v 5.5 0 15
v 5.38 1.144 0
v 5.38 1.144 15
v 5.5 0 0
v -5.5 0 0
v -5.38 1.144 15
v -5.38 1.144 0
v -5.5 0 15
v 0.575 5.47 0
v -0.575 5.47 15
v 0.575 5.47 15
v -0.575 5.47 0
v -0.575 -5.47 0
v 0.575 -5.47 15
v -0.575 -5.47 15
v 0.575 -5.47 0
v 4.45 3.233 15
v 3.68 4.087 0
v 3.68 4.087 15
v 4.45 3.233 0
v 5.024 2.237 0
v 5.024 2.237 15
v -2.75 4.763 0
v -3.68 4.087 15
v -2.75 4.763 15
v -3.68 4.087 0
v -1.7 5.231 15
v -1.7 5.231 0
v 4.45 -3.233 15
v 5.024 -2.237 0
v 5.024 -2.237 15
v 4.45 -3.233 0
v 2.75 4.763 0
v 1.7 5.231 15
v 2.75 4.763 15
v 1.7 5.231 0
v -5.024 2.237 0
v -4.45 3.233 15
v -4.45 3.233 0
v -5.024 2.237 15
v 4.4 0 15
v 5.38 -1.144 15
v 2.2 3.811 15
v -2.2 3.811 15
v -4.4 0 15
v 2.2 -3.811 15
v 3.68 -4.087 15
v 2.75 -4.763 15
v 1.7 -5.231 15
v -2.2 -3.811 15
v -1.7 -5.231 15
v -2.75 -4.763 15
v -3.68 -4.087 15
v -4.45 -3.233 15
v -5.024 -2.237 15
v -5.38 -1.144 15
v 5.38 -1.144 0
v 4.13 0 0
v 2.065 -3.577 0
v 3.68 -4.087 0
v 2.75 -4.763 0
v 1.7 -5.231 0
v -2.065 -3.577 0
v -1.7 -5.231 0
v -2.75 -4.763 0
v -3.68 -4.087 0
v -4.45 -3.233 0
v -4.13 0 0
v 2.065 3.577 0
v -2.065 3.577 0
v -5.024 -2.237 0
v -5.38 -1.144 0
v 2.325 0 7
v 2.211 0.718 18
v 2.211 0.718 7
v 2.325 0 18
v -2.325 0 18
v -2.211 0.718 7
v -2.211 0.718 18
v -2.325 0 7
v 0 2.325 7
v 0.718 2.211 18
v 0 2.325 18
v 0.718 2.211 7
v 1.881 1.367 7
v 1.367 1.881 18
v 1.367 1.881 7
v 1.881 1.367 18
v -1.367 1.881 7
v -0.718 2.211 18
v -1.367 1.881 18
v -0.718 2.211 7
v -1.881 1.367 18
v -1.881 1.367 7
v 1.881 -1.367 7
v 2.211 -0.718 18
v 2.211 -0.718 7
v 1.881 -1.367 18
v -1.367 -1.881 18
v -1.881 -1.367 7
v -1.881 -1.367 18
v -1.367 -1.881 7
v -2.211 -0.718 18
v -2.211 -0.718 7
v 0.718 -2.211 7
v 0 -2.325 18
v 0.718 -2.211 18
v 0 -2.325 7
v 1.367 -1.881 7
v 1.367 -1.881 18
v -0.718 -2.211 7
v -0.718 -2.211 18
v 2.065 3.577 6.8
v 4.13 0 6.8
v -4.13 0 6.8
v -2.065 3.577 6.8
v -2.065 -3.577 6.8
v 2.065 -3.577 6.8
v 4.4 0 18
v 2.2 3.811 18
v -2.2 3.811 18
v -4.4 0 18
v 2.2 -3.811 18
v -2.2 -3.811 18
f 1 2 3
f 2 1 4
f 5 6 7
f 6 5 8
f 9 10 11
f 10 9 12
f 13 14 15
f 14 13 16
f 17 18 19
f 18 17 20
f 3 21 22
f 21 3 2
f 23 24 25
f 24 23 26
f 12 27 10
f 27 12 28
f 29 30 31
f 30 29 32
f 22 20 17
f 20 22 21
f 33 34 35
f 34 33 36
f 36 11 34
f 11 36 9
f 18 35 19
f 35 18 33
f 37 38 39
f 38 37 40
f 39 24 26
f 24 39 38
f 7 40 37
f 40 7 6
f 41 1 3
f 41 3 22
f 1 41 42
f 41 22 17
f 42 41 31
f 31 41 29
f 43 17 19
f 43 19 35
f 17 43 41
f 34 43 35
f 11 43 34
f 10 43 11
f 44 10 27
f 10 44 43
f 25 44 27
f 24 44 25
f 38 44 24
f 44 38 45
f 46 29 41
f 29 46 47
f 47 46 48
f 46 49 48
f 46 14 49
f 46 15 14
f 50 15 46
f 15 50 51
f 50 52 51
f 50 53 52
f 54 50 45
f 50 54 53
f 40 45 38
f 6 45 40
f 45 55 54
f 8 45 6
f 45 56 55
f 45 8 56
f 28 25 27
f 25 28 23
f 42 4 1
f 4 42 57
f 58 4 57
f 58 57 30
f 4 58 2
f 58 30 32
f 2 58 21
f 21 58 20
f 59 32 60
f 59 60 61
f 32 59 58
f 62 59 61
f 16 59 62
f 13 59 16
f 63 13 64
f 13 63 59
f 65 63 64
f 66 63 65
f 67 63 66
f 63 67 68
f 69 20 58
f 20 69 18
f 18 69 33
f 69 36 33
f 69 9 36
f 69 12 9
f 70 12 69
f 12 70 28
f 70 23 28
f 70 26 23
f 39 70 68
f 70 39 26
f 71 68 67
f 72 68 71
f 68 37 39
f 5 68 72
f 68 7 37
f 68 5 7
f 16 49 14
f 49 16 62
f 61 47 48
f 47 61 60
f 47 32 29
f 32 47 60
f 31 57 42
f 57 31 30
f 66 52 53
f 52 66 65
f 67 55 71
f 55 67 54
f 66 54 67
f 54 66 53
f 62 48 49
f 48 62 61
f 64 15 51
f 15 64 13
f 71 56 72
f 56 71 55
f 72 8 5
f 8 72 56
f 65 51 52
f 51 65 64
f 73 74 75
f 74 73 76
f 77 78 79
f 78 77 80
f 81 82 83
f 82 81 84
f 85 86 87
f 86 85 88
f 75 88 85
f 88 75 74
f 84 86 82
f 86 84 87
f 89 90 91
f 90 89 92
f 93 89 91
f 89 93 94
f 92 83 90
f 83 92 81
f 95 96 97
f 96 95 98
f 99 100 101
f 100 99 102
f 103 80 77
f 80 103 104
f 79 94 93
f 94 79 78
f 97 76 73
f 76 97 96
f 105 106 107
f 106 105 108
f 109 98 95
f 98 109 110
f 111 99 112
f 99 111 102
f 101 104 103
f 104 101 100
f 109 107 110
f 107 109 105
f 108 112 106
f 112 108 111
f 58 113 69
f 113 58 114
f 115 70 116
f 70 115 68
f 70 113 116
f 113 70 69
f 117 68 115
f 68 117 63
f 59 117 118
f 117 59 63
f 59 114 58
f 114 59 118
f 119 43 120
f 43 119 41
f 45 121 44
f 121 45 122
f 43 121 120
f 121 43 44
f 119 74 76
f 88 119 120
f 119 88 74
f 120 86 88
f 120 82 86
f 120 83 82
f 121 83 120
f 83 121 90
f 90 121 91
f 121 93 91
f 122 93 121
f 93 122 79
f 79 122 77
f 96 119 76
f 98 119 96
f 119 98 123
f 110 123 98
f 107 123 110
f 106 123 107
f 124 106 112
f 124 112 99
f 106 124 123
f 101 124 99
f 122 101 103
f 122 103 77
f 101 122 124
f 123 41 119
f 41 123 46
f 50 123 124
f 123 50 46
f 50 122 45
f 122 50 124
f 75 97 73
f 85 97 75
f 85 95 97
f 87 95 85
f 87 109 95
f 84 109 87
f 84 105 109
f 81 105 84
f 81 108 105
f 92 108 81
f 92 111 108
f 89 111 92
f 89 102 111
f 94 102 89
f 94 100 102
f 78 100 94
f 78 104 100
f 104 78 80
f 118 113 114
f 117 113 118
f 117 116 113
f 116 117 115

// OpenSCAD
echo((4.7-0.3)*2);

mod = 3; // relocate location of end of nut socket


difference() {
    translate([0, 0, 0]) cylinder(h=15, r=5.5, $fn=30);
    translate([0, 0, -1])  cylinder(h=15+2, d=4.65, $fn=20);
    translate([0, 0, -0.01]) cylinder(h=4+mod, r=3.83+0.3, $fn=6);  // nut socket
}

translate([0, 0, 3.8+mod]) cylinder(h=0.2, r=4.2+0.3, $fn=6);  //sacrificial support
//rotate([0, 0, 90]) translate([0, 2.95, 3.5+1*0.2]) cube([5.8, 1.2, 0.4], center=true);

difference() {     // nut end
    translate([0, 0, 10]) cylinder(h=8, d=(4.7-0.3)*2, $fn=6);
    translate([0, 0, 9])  cylinder(h=10+2, d=4.65, $fn=20);
    
}
